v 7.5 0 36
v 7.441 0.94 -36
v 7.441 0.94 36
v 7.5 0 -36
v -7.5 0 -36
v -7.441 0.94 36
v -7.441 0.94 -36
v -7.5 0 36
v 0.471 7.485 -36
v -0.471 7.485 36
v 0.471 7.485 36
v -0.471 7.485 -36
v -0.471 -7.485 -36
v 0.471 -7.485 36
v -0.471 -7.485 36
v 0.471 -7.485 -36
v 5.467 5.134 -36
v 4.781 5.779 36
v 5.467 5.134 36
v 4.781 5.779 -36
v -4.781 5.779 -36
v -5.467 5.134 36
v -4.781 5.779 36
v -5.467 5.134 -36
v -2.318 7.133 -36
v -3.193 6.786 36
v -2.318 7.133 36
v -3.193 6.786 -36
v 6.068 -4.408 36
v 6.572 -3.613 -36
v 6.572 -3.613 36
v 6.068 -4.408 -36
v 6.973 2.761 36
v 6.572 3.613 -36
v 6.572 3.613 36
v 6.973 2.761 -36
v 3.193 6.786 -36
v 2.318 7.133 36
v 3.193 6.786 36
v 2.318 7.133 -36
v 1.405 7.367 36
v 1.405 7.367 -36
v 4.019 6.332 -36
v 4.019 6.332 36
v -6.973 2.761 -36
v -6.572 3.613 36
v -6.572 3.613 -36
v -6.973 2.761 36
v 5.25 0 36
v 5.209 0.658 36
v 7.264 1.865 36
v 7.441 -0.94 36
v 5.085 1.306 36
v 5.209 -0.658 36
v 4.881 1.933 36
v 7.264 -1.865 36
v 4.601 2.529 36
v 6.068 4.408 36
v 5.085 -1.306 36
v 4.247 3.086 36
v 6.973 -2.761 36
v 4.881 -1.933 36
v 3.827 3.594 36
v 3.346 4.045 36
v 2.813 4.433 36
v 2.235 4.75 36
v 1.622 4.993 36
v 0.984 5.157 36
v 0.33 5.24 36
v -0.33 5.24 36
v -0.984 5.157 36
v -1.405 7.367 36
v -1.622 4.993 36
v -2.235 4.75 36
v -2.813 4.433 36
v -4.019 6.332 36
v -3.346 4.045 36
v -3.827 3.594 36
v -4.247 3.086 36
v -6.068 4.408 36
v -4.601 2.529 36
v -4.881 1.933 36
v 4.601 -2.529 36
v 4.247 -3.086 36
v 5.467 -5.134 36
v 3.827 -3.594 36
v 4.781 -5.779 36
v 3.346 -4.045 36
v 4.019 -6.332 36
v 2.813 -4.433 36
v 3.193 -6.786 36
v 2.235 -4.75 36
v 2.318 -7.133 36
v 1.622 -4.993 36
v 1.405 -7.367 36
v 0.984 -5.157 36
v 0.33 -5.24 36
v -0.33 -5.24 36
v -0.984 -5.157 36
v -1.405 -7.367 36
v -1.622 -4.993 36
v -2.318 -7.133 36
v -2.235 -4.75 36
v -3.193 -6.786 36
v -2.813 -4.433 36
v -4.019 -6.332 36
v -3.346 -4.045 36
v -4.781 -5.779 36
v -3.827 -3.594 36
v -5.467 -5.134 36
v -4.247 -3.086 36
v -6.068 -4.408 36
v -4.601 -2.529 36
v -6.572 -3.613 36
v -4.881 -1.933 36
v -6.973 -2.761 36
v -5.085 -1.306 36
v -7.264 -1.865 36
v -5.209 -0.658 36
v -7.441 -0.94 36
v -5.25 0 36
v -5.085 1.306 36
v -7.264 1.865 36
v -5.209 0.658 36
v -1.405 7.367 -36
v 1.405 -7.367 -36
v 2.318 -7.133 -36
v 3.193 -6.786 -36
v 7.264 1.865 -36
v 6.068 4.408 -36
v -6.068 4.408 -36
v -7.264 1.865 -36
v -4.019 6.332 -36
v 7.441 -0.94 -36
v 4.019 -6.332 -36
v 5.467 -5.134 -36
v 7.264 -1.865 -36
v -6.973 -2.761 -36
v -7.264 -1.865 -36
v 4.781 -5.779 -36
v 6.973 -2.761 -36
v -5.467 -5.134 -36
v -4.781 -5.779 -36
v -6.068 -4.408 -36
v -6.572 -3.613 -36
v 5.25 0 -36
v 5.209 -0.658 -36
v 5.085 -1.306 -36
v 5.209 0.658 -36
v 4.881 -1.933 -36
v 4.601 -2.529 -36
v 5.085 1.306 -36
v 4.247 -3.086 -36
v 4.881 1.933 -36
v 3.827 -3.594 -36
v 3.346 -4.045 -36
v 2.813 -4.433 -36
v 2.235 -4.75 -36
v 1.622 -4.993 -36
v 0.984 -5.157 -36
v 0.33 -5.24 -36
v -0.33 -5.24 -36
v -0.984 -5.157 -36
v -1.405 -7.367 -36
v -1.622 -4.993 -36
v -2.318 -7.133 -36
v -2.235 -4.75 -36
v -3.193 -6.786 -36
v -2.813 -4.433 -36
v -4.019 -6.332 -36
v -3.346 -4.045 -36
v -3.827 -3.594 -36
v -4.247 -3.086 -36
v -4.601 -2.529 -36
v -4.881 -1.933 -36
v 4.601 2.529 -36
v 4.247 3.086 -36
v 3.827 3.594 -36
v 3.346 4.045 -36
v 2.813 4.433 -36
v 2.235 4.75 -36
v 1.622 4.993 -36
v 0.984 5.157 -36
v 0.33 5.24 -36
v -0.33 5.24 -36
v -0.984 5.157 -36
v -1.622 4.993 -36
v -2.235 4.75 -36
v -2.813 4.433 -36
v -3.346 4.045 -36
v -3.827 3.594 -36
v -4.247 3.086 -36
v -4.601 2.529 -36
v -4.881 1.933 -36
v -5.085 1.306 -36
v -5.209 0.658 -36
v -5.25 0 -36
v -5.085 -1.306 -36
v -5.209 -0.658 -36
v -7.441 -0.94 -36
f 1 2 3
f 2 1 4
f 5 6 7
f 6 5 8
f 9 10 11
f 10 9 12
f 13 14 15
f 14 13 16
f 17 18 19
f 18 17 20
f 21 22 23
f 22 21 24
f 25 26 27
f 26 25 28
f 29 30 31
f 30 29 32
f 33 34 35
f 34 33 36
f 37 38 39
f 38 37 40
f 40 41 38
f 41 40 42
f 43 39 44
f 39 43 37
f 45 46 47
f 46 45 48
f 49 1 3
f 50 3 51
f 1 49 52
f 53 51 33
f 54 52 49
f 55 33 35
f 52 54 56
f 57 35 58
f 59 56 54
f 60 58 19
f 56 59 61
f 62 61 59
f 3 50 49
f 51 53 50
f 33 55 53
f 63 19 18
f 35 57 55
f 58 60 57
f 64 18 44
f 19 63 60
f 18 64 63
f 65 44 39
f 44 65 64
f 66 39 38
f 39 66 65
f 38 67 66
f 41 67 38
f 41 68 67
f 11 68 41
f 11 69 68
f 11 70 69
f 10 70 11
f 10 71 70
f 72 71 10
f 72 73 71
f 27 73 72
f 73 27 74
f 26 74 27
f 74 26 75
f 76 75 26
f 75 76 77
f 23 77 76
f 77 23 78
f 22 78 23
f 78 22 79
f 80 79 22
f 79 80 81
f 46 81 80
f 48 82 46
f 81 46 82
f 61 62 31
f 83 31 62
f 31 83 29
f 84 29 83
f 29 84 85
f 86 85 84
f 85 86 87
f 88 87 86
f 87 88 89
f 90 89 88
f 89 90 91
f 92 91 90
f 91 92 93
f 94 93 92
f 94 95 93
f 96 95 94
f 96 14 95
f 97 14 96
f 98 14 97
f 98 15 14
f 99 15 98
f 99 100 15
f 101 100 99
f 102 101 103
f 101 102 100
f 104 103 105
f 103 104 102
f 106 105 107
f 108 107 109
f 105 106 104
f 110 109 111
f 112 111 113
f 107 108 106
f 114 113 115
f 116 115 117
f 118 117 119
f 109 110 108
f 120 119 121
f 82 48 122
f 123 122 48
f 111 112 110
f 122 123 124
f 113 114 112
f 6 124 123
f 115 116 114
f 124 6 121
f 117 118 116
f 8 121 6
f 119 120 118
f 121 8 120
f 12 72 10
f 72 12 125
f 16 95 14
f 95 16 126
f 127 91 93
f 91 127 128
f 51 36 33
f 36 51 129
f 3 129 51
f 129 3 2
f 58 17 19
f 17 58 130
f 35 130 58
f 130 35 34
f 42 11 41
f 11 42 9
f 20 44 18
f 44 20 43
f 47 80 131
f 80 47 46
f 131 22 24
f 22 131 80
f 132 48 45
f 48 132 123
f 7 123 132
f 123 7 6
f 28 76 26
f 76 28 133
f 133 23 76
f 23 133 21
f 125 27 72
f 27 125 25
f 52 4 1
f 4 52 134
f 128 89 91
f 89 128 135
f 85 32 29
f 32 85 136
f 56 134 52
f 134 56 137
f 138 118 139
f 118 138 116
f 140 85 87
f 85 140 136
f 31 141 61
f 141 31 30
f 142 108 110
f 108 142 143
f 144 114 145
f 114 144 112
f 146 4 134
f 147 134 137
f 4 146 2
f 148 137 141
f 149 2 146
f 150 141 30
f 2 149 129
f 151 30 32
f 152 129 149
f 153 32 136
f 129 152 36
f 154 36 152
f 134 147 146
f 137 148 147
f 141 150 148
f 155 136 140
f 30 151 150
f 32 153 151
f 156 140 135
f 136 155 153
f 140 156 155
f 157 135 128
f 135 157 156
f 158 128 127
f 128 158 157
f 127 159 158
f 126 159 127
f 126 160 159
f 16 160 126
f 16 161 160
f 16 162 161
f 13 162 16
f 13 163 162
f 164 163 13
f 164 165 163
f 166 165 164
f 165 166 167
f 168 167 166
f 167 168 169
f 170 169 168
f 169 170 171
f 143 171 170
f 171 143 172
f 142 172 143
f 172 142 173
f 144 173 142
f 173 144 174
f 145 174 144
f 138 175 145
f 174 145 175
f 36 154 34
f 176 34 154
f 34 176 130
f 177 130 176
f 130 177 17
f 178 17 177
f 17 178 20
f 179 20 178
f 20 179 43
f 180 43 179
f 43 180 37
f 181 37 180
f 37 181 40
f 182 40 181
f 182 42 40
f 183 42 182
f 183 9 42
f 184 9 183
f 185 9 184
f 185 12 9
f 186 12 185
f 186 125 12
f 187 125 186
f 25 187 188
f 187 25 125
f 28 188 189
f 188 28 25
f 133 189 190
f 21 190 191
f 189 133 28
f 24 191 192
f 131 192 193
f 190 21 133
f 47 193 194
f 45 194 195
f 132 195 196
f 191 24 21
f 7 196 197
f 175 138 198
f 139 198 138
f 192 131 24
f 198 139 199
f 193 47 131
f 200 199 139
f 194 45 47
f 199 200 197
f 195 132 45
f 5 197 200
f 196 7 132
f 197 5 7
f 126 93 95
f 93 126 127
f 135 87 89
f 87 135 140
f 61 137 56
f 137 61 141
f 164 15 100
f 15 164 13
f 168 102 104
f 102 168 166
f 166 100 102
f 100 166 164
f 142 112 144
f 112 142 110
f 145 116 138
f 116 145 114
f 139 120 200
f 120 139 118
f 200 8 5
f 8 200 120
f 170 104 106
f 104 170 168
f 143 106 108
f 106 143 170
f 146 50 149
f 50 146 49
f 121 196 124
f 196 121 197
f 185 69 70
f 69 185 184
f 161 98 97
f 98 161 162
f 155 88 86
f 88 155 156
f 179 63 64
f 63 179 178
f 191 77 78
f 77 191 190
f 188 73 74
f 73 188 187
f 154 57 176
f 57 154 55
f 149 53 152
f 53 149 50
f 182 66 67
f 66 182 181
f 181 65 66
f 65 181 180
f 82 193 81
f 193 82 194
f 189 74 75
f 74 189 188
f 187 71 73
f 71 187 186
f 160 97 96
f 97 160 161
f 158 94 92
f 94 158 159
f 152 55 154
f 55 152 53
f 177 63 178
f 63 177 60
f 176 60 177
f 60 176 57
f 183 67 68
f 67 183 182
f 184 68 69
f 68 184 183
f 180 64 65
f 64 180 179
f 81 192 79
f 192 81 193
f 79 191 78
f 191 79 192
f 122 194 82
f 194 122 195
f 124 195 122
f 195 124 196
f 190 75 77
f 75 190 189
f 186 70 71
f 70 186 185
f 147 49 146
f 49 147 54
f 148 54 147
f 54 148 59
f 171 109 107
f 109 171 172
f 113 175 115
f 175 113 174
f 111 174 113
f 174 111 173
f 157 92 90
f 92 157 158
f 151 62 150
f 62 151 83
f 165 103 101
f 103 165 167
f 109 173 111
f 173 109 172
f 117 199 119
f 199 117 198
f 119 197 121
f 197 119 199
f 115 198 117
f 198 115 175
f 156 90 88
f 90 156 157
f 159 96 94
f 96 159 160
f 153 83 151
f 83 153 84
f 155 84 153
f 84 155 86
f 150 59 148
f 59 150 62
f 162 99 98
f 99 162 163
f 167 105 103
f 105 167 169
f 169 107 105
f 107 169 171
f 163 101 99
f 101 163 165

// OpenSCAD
$fn = 50;


difference() {
	union() {
		translate(v = [0, 0, -36.0000000000]) {
			cylinder(h = 72, r = 7.5000000000);
		}
	}
	union() {
		translate(v = [0, 0, -100.0000000000]) {
			cylinder(h = 200, r = 5.2500000000);
		}
	}
}
